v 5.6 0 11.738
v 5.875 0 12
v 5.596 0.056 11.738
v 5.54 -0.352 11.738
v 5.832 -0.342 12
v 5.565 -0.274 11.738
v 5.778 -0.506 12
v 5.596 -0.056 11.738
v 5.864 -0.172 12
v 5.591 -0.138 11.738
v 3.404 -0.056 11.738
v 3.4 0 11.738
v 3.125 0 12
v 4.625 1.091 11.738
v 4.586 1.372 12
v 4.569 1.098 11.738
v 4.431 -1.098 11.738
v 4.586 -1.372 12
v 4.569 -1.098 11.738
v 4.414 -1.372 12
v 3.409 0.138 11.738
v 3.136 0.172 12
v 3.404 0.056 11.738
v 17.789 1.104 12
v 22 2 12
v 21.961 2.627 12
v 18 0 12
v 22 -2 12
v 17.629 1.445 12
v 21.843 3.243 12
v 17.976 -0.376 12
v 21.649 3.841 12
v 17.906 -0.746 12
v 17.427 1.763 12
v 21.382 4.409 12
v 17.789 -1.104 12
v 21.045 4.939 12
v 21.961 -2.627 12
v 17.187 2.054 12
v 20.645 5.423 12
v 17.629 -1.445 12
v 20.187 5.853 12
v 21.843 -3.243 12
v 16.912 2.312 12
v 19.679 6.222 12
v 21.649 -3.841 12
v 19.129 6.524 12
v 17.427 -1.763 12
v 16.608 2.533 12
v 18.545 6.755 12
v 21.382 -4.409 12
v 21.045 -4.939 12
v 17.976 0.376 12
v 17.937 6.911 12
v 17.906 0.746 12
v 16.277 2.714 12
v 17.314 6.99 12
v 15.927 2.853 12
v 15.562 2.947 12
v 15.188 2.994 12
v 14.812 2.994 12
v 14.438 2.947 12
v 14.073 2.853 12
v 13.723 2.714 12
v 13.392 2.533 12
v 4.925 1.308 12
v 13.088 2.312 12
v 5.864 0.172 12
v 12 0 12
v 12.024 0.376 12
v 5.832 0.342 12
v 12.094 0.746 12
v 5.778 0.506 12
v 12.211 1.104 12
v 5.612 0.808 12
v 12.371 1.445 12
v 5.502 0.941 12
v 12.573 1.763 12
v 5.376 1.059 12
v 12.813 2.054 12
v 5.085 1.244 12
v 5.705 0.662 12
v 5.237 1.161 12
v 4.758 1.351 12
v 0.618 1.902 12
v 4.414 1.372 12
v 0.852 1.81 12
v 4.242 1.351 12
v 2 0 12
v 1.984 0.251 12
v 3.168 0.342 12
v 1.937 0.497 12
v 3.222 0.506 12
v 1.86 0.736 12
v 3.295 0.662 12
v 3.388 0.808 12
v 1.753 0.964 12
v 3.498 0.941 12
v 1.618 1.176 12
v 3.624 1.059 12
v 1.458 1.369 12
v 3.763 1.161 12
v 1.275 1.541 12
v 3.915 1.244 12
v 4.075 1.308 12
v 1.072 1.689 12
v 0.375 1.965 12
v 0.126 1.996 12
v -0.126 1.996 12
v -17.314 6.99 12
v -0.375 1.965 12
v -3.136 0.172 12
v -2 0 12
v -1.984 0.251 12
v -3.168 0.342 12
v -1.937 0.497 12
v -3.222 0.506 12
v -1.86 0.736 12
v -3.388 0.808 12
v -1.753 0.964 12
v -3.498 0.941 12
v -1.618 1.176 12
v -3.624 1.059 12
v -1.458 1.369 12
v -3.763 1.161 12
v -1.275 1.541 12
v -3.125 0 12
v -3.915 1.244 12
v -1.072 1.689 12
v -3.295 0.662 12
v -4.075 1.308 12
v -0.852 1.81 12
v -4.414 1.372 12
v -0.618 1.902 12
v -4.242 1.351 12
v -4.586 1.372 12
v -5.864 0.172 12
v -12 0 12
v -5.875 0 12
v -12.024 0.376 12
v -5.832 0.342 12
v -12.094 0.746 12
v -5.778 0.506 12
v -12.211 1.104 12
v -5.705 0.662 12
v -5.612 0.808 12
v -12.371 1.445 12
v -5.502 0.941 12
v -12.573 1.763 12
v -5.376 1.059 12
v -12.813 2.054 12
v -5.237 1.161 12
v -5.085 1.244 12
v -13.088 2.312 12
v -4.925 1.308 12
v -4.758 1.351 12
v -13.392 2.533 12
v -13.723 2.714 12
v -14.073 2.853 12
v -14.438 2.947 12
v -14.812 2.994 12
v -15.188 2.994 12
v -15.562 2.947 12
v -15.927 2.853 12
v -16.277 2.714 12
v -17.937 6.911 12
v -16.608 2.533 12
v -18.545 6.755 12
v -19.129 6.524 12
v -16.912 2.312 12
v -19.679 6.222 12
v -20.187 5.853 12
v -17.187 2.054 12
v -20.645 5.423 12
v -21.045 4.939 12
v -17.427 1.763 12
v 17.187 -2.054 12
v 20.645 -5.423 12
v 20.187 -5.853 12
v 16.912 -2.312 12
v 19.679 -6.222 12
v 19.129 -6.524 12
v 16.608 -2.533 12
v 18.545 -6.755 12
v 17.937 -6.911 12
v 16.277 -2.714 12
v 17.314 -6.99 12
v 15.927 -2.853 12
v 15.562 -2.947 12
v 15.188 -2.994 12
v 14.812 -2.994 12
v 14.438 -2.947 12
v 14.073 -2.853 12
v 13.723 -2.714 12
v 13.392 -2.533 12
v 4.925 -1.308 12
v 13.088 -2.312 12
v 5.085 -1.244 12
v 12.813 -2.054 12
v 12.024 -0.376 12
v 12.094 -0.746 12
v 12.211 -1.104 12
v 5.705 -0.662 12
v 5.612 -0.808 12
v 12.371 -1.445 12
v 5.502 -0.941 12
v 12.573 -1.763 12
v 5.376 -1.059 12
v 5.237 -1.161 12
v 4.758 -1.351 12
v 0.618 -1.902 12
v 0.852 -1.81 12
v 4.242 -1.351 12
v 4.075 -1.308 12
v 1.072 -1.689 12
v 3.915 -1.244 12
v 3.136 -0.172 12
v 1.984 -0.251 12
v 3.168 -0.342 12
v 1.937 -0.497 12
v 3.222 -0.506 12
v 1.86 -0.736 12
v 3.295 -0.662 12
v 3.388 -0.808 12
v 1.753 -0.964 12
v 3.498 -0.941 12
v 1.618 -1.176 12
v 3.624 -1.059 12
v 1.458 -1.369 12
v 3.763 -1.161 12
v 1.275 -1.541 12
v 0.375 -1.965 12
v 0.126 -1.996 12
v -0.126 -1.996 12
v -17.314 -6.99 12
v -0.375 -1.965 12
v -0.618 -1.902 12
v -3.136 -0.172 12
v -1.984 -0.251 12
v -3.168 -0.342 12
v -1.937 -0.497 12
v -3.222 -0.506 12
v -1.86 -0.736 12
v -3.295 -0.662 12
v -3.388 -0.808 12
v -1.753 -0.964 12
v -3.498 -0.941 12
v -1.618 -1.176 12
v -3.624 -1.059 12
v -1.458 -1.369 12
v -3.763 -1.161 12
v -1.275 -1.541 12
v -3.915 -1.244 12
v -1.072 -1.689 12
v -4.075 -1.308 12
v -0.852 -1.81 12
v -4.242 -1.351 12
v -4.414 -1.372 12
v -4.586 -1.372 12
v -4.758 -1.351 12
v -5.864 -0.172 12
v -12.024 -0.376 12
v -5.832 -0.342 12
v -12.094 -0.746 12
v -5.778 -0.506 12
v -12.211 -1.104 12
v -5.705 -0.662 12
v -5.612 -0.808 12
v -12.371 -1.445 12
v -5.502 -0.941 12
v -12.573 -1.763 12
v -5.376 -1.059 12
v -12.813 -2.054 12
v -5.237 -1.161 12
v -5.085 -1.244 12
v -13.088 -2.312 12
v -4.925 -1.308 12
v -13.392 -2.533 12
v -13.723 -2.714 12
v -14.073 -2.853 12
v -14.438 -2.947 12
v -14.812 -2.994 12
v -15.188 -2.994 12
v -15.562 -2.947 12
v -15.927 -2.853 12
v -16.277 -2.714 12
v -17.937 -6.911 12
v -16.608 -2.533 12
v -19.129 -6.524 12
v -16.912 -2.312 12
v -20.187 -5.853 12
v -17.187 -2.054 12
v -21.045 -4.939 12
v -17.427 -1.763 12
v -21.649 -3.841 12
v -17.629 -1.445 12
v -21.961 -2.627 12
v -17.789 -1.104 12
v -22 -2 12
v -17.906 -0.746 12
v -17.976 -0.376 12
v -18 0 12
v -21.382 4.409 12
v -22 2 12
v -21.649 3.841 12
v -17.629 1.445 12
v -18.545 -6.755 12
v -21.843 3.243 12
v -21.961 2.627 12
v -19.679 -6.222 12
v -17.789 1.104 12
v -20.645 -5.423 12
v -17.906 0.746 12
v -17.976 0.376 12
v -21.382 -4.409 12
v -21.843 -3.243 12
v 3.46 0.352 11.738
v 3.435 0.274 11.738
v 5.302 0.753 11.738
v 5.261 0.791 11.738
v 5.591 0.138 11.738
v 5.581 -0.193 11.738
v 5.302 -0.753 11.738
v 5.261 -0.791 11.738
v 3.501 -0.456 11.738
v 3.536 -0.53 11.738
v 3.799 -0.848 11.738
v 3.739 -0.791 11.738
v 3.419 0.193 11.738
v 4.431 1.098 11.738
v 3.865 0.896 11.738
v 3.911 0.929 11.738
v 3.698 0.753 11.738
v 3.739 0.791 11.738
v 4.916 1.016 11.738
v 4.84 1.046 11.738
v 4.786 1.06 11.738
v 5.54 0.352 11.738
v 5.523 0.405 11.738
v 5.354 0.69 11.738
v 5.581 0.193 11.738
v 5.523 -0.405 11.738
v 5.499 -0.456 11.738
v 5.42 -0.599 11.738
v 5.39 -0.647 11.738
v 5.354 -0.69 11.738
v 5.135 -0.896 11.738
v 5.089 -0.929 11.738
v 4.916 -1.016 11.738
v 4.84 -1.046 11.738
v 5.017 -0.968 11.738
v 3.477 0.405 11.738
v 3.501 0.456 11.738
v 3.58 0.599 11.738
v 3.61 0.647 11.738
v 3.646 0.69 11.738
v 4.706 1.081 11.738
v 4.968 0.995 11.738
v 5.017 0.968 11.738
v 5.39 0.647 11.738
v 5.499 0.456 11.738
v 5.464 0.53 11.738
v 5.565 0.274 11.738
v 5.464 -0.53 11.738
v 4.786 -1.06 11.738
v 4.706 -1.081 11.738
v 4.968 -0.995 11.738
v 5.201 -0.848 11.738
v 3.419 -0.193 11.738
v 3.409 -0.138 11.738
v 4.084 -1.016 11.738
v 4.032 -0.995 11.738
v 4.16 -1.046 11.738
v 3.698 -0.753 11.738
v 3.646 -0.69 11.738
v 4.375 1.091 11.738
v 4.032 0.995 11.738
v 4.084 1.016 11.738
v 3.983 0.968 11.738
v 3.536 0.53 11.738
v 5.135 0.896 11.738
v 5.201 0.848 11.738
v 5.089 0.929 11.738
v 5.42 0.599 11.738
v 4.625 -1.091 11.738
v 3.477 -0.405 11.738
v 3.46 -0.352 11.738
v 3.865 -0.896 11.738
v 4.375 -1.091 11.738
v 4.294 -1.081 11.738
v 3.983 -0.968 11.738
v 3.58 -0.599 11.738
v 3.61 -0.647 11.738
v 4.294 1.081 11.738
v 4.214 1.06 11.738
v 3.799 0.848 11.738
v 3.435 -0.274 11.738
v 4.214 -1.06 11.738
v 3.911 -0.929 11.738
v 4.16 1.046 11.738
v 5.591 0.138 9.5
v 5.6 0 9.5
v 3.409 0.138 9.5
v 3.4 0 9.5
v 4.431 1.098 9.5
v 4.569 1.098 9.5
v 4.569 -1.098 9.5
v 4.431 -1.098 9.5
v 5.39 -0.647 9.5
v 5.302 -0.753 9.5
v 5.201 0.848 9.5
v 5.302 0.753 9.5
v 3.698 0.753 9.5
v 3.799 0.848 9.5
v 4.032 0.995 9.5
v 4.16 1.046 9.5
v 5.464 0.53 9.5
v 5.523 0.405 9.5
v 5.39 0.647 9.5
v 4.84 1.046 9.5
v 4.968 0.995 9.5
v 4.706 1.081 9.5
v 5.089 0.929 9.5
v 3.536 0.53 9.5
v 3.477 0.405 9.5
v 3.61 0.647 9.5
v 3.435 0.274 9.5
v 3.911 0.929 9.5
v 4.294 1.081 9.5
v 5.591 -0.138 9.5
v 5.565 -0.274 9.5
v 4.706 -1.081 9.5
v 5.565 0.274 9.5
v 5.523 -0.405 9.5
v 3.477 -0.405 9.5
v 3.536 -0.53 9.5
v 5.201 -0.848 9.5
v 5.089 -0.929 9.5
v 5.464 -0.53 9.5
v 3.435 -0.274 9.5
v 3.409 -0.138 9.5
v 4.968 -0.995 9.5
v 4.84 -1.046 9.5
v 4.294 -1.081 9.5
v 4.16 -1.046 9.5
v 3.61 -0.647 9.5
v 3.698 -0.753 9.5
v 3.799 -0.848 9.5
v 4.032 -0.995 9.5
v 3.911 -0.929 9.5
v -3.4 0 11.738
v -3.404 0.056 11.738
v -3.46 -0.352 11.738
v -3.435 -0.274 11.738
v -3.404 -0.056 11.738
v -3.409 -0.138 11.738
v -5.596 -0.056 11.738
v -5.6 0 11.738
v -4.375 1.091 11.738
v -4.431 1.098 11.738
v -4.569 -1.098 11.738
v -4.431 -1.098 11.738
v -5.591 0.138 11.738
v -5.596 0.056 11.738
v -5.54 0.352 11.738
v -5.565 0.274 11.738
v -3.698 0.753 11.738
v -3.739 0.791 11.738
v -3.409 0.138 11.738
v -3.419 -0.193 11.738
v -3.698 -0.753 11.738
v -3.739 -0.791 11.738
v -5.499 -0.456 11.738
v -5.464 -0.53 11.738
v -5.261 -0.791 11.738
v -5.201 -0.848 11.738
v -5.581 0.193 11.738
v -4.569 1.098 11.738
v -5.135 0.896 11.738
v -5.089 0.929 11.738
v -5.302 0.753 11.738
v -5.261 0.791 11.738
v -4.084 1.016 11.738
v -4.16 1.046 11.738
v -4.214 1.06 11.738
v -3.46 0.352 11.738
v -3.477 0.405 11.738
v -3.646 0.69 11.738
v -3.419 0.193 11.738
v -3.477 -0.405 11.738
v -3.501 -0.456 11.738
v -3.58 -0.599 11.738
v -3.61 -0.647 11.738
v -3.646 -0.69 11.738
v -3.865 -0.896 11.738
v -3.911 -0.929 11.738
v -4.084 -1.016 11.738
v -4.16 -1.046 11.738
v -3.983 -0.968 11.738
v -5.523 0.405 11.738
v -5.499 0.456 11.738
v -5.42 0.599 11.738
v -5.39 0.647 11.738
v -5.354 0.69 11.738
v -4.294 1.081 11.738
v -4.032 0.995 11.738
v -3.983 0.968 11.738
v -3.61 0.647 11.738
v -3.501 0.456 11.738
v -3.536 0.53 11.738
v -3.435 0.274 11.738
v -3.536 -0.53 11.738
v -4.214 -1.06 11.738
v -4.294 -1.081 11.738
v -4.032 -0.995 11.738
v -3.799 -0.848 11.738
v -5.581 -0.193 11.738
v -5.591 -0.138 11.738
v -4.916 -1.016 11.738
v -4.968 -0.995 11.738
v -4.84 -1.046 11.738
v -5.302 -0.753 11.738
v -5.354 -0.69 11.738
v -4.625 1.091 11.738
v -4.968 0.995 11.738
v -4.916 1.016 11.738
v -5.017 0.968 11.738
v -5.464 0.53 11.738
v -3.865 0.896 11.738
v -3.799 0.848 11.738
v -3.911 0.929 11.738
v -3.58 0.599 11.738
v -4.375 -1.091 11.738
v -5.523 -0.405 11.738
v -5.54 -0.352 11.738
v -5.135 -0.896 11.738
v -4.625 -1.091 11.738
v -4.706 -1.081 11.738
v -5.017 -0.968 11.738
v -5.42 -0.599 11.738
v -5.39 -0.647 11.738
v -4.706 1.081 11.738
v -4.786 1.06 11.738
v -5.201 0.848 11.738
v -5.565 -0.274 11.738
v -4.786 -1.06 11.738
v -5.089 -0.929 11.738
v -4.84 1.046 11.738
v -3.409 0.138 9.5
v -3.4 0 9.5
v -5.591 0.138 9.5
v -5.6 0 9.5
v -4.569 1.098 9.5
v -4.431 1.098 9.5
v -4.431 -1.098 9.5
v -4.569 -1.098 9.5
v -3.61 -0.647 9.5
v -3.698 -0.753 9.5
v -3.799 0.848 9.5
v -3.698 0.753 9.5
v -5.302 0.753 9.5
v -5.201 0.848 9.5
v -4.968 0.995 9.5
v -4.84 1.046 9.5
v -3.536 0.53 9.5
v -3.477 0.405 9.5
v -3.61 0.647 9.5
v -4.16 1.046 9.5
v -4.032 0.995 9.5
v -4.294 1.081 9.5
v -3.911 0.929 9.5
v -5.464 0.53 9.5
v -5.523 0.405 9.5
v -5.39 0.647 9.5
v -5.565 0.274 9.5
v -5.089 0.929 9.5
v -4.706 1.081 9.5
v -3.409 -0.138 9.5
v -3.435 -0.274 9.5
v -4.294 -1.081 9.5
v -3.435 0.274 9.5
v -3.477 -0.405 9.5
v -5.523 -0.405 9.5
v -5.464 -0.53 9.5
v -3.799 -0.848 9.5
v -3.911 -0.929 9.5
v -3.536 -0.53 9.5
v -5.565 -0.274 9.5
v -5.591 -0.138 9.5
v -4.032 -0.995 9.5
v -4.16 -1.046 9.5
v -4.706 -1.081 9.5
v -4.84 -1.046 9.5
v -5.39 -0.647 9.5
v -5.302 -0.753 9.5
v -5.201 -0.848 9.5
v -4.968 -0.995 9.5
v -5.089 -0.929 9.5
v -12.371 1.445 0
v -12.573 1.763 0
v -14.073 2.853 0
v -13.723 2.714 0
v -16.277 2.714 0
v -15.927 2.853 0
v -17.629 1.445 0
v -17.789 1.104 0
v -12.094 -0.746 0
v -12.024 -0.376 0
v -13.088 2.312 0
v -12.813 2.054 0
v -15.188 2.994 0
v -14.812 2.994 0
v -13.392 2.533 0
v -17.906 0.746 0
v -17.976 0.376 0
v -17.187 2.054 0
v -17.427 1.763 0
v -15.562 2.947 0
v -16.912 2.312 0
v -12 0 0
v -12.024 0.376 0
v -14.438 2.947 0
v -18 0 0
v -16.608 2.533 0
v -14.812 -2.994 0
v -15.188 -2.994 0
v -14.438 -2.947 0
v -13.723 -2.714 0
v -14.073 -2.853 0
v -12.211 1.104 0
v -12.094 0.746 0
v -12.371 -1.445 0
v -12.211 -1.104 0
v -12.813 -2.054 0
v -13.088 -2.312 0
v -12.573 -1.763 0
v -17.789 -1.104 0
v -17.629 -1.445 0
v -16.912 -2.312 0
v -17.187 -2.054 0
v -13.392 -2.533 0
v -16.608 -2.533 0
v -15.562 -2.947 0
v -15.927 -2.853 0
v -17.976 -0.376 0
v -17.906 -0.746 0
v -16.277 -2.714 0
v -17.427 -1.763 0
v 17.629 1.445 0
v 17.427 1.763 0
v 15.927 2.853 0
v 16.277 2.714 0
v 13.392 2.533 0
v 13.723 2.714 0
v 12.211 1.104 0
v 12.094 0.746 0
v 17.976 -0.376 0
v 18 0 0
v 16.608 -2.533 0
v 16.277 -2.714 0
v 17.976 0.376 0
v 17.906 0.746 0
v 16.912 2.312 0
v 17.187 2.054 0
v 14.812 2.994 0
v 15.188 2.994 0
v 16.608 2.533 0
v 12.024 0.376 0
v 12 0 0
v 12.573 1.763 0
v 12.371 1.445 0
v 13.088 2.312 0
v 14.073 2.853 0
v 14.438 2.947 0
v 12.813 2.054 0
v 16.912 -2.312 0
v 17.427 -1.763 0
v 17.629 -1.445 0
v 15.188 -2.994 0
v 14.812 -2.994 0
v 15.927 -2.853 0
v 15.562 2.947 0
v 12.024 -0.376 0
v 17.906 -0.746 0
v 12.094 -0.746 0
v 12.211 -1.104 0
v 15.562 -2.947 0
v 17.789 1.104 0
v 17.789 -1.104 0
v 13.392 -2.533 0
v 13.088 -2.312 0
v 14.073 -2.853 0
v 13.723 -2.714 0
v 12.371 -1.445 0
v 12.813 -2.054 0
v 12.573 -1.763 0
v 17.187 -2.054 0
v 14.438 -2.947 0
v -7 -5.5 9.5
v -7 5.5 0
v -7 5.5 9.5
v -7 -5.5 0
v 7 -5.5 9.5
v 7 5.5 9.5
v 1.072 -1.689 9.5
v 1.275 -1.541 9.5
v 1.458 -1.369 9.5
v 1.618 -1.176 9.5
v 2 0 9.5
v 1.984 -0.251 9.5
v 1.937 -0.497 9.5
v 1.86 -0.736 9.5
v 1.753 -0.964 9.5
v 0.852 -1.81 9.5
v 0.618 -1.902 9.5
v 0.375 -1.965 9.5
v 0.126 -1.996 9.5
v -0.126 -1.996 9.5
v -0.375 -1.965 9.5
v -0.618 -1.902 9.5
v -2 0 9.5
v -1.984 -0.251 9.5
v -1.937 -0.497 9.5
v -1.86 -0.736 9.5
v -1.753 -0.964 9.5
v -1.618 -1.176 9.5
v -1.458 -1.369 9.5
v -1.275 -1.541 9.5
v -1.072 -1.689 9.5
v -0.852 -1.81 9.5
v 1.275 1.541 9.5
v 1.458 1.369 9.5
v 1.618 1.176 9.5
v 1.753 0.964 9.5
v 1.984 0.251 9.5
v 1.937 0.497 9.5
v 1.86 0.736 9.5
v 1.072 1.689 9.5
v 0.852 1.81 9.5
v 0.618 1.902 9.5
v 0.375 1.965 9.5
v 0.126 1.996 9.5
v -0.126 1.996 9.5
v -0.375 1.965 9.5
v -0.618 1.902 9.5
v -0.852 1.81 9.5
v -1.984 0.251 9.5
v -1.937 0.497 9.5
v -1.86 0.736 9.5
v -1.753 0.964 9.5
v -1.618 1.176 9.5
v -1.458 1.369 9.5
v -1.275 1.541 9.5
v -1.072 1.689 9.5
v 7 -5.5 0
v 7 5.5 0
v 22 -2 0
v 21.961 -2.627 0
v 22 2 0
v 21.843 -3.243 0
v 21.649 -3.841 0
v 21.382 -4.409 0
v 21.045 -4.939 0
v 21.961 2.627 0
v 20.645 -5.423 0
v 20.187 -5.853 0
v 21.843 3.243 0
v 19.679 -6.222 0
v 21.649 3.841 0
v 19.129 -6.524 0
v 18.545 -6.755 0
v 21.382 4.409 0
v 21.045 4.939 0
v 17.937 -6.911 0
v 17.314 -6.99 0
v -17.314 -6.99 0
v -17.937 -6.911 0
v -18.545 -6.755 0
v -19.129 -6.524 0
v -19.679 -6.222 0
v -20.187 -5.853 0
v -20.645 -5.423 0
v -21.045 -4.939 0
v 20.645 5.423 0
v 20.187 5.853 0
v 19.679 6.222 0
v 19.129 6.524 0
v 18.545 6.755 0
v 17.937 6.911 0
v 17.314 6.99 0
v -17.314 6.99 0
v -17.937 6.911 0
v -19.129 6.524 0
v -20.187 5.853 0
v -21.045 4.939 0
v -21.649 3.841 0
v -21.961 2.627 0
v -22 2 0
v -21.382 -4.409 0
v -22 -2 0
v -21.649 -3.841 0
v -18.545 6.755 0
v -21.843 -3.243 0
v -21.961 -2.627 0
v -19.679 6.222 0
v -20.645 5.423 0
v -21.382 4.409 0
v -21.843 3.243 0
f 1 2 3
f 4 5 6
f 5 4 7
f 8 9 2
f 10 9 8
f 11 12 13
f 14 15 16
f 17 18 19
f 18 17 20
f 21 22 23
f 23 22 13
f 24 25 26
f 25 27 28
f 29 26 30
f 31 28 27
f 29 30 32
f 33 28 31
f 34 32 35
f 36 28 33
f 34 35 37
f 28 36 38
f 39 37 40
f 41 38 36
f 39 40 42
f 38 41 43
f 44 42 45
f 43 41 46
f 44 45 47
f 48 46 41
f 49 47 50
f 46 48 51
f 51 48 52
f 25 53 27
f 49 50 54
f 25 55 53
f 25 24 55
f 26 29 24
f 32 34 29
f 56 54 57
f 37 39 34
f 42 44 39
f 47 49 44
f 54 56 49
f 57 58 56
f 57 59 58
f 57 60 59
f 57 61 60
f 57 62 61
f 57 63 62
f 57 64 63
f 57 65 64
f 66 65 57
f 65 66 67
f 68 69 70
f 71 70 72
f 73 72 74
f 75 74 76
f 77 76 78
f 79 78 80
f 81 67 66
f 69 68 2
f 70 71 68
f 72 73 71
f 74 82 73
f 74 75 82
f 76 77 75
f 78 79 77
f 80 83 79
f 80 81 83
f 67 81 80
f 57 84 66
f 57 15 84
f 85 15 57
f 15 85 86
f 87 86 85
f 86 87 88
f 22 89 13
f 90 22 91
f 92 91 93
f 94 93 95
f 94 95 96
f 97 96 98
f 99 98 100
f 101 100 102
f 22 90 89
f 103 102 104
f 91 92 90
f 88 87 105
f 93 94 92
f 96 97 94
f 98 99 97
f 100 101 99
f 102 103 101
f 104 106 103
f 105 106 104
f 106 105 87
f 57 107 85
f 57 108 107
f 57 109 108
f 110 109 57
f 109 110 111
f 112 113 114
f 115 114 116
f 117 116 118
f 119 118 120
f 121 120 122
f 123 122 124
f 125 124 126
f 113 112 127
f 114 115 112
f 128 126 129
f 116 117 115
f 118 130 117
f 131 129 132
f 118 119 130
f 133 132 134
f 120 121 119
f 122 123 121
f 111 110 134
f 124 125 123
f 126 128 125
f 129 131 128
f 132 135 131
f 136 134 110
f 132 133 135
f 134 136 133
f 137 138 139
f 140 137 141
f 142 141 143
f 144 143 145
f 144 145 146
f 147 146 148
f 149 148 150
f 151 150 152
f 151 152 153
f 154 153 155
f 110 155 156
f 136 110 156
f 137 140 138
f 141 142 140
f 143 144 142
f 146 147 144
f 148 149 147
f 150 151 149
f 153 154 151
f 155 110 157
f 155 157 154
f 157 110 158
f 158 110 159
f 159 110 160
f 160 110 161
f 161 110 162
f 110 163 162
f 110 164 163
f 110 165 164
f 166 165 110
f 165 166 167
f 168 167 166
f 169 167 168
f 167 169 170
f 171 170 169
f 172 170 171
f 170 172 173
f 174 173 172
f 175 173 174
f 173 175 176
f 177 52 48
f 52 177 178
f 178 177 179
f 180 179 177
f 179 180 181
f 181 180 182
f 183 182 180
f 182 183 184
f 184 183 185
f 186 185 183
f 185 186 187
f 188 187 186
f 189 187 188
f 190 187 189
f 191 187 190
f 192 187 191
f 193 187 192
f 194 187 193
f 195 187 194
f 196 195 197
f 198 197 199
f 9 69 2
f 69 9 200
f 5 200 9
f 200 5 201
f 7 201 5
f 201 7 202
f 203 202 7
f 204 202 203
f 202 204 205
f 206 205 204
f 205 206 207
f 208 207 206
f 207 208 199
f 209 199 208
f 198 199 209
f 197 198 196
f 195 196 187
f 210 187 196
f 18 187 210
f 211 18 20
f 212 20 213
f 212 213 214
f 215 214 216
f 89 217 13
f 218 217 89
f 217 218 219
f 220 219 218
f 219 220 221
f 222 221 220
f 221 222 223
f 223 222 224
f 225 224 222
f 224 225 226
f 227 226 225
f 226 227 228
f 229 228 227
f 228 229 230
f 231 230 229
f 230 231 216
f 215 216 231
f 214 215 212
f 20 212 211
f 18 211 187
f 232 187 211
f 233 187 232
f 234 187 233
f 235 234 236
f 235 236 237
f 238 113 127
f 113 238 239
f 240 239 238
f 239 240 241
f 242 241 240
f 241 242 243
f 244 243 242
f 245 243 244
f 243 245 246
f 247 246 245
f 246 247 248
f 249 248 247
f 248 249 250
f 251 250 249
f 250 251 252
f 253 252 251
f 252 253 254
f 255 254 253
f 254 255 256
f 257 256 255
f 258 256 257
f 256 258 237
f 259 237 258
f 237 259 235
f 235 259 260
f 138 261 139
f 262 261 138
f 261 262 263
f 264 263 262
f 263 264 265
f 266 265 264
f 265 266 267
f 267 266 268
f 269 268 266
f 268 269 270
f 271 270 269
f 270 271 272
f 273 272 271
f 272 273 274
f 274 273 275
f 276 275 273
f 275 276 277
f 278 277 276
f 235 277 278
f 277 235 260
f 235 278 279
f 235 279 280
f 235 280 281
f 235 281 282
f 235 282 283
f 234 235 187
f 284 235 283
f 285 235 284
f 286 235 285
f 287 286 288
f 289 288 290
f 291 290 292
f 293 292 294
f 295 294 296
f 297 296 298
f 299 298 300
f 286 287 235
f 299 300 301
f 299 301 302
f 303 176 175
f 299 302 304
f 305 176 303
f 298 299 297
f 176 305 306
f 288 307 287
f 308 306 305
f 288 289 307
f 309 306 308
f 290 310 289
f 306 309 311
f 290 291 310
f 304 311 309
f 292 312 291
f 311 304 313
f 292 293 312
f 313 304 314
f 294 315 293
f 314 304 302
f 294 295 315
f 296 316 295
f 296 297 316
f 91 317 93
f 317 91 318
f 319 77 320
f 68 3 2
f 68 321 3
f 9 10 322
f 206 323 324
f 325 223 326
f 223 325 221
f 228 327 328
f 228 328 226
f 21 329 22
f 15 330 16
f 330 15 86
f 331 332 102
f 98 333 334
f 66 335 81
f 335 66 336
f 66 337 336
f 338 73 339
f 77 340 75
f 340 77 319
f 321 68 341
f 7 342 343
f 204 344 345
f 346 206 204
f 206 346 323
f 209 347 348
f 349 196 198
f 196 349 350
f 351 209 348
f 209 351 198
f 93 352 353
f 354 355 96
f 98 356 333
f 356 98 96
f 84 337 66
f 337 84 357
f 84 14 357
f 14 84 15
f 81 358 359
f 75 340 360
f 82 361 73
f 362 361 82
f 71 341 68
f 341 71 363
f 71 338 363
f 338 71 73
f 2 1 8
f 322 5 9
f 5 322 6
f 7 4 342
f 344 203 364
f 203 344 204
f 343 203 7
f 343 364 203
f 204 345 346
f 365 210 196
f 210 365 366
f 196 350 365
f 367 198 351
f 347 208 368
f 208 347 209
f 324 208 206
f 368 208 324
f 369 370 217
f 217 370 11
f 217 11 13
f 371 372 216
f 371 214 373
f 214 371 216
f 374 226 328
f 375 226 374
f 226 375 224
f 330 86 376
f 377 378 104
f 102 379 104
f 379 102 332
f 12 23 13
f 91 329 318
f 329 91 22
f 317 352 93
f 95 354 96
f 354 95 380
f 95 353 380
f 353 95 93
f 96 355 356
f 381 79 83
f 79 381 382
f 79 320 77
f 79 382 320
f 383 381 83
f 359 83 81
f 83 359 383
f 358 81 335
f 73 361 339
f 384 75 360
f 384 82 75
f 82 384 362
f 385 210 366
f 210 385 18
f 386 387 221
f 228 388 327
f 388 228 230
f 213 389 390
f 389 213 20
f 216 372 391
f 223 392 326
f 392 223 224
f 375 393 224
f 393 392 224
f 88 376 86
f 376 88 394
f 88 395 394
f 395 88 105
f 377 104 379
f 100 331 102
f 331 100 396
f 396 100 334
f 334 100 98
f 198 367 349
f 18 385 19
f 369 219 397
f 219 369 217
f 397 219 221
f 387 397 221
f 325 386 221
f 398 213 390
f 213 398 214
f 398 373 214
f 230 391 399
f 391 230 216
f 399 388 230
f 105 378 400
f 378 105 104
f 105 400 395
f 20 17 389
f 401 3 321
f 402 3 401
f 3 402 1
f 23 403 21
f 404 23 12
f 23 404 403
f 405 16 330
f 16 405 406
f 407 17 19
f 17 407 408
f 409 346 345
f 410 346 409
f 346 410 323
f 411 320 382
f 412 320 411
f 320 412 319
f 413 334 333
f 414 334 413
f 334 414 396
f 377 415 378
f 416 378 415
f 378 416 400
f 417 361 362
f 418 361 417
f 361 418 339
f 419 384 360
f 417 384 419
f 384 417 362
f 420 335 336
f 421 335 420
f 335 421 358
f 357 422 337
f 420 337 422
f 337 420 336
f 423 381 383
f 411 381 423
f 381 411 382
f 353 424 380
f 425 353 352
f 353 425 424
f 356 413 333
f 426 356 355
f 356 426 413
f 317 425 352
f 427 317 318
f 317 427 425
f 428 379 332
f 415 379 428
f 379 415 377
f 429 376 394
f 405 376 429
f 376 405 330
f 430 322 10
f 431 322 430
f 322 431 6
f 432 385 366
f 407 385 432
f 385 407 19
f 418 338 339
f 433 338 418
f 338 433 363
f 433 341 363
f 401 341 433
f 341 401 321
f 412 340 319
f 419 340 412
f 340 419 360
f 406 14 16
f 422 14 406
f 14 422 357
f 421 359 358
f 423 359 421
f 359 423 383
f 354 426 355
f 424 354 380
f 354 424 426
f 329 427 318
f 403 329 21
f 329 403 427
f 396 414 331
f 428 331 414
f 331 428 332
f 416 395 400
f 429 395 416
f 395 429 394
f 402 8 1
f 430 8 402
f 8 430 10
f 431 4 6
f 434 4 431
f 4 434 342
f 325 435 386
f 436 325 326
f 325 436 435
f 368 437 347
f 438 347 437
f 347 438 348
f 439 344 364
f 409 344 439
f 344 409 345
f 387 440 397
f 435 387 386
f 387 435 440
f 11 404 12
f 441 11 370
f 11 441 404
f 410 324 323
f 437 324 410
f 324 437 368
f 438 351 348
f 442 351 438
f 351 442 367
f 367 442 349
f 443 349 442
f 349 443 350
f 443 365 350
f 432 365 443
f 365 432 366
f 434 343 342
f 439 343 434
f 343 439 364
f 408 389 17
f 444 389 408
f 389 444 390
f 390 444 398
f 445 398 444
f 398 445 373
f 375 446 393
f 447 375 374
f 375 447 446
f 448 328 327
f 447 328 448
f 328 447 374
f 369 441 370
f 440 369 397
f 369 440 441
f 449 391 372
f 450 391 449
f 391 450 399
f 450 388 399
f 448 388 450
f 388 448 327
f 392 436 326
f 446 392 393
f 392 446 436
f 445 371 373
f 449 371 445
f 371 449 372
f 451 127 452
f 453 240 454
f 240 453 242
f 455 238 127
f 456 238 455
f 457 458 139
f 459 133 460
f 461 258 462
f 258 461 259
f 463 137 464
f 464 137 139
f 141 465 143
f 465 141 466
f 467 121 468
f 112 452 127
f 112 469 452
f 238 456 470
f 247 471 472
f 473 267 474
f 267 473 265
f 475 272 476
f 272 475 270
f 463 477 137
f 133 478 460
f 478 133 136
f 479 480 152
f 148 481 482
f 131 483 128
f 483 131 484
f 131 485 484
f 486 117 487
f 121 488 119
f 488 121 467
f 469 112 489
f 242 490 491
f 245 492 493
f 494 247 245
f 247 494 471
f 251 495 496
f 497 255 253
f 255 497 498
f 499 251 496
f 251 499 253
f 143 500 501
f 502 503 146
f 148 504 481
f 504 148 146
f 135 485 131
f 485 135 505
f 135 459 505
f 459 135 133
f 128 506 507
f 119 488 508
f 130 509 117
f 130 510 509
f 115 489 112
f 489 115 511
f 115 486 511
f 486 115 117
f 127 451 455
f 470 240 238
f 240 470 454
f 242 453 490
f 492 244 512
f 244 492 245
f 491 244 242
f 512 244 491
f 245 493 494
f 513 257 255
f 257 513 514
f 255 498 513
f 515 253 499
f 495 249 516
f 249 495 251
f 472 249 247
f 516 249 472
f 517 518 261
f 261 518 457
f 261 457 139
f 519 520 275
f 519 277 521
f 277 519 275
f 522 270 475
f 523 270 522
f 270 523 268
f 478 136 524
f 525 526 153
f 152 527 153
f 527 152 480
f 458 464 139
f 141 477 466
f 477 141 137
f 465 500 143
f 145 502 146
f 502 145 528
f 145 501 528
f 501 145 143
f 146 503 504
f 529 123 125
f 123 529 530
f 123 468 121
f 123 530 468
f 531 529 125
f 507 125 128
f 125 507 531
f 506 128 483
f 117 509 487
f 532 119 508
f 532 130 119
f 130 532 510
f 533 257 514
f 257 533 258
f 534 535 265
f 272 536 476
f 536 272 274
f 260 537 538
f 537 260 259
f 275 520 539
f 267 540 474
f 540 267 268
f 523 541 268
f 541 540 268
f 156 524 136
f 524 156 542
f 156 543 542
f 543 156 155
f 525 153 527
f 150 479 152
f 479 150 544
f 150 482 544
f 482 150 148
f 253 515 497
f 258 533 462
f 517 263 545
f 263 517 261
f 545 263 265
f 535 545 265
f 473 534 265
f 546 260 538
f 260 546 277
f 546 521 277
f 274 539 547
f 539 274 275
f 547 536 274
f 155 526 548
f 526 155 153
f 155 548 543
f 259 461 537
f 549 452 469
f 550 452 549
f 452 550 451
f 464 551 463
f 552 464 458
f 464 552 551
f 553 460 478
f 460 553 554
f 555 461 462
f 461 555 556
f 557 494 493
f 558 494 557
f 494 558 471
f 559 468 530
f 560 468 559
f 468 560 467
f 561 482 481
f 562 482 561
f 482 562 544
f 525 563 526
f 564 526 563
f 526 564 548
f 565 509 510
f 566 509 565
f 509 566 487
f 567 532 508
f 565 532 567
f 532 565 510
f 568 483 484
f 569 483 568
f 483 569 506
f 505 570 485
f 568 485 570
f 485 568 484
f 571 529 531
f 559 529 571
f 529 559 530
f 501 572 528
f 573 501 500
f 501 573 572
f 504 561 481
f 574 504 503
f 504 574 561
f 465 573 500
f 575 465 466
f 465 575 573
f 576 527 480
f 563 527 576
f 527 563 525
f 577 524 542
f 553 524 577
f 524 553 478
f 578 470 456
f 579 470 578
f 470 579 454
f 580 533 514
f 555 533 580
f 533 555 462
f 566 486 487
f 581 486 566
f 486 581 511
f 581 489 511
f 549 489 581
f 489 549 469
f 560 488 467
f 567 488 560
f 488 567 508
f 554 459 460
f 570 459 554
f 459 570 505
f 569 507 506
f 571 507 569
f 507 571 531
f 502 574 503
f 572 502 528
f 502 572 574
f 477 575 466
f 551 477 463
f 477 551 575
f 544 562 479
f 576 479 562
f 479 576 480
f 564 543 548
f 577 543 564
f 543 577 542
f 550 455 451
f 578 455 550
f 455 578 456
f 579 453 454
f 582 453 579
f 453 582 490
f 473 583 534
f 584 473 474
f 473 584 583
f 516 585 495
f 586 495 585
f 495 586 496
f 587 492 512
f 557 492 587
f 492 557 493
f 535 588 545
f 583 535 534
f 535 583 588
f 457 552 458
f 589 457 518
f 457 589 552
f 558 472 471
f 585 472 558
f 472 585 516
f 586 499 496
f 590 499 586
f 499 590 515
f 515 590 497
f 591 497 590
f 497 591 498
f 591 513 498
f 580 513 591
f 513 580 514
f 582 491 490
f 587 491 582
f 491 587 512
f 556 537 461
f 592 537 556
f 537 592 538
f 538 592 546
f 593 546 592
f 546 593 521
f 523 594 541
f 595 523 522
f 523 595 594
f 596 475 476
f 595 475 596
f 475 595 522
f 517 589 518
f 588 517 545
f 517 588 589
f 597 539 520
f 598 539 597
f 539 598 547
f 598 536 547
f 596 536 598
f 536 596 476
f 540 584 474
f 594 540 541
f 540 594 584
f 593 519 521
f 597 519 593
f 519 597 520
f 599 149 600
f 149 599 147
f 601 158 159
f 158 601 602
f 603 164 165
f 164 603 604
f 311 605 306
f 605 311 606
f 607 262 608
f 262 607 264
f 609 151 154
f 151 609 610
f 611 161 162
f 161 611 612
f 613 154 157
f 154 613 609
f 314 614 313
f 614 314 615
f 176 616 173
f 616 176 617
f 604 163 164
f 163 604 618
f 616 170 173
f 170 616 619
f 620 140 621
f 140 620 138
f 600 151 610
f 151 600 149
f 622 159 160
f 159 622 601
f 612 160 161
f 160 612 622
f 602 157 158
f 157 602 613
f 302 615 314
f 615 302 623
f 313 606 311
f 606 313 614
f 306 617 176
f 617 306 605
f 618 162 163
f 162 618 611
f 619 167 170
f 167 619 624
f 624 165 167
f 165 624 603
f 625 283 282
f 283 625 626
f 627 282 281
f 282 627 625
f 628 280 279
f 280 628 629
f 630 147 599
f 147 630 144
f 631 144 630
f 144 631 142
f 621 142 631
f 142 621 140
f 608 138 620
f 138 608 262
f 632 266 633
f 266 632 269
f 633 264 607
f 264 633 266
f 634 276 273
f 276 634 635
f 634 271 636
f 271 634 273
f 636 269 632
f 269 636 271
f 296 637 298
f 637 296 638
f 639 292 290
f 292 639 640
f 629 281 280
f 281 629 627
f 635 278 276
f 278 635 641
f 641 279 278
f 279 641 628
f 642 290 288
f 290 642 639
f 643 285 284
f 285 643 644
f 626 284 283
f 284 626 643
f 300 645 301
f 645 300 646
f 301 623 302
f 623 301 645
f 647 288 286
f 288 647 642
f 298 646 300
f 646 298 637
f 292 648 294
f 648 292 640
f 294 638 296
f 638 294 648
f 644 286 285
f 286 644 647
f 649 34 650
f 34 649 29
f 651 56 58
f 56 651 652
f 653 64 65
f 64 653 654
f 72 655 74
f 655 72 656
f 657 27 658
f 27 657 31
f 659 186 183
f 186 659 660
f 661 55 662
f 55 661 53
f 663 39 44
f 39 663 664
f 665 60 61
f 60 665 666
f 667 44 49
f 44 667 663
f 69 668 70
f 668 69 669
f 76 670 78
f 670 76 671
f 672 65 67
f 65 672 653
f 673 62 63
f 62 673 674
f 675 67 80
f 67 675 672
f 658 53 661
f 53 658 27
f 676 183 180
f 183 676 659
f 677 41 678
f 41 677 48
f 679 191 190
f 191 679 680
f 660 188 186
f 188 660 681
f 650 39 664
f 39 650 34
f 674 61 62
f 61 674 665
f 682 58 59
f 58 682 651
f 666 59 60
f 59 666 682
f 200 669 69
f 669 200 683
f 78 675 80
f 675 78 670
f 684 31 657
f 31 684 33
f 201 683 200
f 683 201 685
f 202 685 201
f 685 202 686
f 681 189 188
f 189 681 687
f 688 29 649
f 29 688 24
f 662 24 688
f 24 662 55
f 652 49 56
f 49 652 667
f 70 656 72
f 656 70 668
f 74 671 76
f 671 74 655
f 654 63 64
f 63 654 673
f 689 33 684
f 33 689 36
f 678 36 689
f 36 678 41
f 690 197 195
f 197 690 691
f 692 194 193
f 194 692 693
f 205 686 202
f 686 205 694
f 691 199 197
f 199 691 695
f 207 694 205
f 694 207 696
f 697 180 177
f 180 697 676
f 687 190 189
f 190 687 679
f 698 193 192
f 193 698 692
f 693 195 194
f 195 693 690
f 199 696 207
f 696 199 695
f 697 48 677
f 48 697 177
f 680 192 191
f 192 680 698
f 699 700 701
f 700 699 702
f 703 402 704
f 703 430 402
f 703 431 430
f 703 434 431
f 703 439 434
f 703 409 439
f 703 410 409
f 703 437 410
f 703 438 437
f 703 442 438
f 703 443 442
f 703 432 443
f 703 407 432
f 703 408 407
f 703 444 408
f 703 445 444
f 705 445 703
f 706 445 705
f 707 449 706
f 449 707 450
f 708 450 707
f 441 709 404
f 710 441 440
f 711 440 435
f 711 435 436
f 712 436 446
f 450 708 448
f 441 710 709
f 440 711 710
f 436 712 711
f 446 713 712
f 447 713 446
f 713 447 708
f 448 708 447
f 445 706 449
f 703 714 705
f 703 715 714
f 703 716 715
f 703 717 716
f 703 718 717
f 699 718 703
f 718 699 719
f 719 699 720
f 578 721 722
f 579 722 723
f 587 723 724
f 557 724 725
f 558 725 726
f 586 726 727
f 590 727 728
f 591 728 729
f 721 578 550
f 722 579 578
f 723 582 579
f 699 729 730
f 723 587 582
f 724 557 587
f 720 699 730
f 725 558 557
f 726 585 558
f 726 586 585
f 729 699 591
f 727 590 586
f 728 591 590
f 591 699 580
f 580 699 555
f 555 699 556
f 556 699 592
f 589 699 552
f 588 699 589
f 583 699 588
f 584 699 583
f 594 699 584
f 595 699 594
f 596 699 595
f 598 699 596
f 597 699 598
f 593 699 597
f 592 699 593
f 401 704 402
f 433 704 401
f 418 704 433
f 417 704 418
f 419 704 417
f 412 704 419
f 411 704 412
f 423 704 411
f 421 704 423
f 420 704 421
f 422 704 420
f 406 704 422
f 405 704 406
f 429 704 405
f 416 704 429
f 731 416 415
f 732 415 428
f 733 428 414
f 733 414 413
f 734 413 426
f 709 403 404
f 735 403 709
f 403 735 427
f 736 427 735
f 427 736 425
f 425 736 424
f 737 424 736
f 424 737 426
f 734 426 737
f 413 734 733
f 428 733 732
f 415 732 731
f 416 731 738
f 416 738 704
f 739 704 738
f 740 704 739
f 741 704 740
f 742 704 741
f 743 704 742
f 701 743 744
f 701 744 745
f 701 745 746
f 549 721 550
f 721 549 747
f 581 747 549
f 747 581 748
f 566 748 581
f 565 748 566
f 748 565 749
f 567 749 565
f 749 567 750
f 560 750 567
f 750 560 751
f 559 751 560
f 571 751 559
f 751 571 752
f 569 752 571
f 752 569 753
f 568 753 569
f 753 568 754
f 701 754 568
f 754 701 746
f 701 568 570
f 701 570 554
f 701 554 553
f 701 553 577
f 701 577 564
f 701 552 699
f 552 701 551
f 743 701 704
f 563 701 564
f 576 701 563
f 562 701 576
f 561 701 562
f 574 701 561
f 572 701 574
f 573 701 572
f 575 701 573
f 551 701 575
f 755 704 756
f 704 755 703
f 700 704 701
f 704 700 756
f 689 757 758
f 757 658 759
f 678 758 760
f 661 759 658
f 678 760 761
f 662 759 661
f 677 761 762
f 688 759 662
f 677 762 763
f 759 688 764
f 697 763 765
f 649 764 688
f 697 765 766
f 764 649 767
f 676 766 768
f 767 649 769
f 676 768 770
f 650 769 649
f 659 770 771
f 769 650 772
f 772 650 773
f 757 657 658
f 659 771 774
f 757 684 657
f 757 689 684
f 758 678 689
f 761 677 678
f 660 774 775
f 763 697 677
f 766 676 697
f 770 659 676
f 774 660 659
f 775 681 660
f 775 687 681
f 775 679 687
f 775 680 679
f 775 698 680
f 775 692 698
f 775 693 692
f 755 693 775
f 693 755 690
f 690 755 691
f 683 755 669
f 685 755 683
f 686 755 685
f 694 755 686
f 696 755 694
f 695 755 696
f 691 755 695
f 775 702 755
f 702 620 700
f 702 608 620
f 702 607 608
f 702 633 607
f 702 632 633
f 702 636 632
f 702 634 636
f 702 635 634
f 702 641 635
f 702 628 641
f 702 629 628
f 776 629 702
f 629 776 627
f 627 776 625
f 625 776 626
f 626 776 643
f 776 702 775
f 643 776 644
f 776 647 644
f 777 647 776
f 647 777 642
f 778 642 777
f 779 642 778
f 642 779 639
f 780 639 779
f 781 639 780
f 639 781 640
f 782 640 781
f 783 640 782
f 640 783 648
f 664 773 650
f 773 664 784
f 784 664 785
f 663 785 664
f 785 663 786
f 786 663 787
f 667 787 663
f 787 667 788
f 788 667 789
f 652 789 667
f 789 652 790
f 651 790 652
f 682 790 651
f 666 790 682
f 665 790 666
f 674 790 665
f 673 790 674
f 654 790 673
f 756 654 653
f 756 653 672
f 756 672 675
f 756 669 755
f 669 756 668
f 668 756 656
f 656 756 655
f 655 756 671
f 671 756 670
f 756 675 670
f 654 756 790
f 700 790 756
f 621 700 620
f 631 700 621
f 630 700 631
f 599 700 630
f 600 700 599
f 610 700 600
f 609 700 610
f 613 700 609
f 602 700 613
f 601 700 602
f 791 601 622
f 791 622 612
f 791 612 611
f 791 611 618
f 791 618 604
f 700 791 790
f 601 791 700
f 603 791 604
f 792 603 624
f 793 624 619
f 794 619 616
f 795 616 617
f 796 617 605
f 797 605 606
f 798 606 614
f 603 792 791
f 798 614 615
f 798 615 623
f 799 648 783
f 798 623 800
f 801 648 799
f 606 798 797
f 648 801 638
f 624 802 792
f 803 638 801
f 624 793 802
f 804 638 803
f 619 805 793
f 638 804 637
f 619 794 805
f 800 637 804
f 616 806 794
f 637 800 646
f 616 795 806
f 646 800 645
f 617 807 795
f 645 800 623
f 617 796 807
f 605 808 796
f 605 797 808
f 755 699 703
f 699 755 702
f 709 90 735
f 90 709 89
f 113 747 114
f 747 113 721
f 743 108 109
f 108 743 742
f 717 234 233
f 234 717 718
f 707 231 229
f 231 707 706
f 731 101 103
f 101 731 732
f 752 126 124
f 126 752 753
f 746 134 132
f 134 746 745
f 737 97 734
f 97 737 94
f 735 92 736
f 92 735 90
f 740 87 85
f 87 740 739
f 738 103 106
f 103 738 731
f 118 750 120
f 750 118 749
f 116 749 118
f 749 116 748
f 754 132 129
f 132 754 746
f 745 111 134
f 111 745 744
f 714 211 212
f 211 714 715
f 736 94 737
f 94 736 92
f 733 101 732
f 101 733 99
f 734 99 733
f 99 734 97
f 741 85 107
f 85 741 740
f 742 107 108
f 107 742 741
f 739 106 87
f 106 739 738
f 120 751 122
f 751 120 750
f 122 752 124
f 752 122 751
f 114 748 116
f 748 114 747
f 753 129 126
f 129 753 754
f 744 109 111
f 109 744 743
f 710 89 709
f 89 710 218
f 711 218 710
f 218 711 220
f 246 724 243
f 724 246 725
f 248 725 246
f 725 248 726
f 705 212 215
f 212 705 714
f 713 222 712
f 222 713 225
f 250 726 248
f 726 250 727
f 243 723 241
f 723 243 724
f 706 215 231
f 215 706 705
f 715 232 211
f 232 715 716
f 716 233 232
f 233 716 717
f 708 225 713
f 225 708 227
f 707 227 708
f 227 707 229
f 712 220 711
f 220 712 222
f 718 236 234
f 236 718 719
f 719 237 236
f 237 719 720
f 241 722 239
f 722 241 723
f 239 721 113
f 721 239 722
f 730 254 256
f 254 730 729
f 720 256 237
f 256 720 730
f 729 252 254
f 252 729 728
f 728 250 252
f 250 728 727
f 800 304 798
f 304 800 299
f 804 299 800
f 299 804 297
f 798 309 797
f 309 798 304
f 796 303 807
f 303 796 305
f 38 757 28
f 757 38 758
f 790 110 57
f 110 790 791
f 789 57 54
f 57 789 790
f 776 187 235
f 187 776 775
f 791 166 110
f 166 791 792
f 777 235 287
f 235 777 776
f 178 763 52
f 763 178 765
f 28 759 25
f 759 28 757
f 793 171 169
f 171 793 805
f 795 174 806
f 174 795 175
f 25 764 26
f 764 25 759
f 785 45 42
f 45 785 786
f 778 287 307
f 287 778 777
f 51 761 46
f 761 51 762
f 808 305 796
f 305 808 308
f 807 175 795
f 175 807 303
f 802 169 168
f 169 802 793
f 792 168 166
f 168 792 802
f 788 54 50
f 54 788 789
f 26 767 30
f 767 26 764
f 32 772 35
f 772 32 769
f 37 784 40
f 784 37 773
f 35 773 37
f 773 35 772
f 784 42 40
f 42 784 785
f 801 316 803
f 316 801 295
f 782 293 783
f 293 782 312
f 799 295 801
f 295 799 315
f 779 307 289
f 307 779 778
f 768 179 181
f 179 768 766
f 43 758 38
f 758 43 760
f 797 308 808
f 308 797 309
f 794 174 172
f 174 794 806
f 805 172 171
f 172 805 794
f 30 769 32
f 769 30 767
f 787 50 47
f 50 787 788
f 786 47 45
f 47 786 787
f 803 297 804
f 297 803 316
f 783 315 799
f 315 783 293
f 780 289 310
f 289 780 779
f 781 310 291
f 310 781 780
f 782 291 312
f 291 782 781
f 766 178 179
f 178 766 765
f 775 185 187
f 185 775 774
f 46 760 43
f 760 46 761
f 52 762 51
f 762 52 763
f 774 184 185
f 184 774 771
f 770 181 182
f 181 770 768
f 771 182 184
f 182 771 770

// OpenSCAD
$fn = 50;


difference() {
	union() {
		hull() {
			translate(v = [-17.0000000000, 2.0000000000, 0]) {
				cylinder(h = 12, r = 5);
			}
			translate(v = [17.0000000000, 2.0000000000, 0]) {
				cylinder(h = 12, r = 5);
			}
			translate(v = [-17.0000000000, -2.0000000000, 0]) {
				cylinder(h = 12, r = 5);
			}
			translate(v = [17.0000000000, -2.0000000000, 0]) {
				cylinder(h = 12, r = 5);
			}
		}
	}
	union() {
		translate(v = [4.5000000000, 0, 12]) {
			rotate(a = [0, 0, 0]) {
				difference() {
					union() {
						translate(v = [0, 0, -0.5000000000]) {
							cylinder(h = 0.5000000000, r1 = 0.8500000000, r2 = 1.3750000000);
						}
						translate(v = [0, 0, -4.0000000000]) {
							cylinder(h = 4, r = 0.8500000000);
						}
						translate(v = [0, 0, -4.0000000000]) {
							cylinder(h = 4, r = 1.1000000000);
						}
						translate(v = [0, 0, -4.0000000000]) {
							cylinder(h = 4, r = 0.8500000000);
						}
					}
					union();
				}
			}
		}
		translate(v = [-4.5000000000, 0, 12]) {
			rotate(a = [0, 0, 0]) {
				difference() {
					union() {
						translate(v = [0, 0, -0.5000000000]) {
							cylinder(h = 0.5000000000, r1 = 0.8500000000, r2 = 1.3750000000);
						}
						translate(v = [0, 0, -4.0000000000]) {
							cylinder(h = 4, r = 0.8500000000);
						}
						translate(v = [0, 0, -4.0000000000]) {
							cylinder(h = 4, r = 1.1000000000);
						}
						translate(v = [0, 0, -4.0000000000]) {
							cylinder(h = 4, r = 0.8500000000);
						}
					}
					union();
				}
			}
		}
		translate(v = [-15.0000000000, 0.0000000000, -100.0000000000]) {
			cylinder(h = 200, r = 3.0000000000);
		}
		translate(v = [15.0000000000, 0.0000000000, -100.0000000000]) {
			cylinder(h = 200, r = 3.0000000000);
		}
		translate(v = [15.0000000000, 0.0000000000, -100.0000000000]) {
			cylinder(h = 200, r = 3.0000000000);
		}
		translate(v = [-15.0000000000, 0.0000000000, -100.0000000000]) {
			cylinder(h = 200, r = 1.5000000000);
		}
		translate(v = [15.0000000000, 0.0000000000, -100.0000000000]) {
			cylinder(h = 200, r = 1.5000000000);
		}
		translate(v = [-15.0000000000, 0.0000000000, -100.0000000000]) {
			cylinder(h = 200, r = 1.5000000000);
		}
		translate(v = [15.0000000000, 0.0000000000, -100.0000000000]) {
			cylinder(h = 200, r = 1.5000000000);
		}
		translate(v = [-15.0000000000, 0.0000000000, -100.0000000000]) {
			cylinder(h = 200, r = 1.5000000000);
		}
		translate(v = [15.0000000000, 0.0000000000, -100.0000000000]) {
			cylinder(h = 200, r = 1.5000000000);
		}
		translate(v = [-7.0000000000, -5.5000000000, 0]) {
			cube(size = [14, 11, 9.5000000000]);
		}
		cylinder(h = 12, r = 2.0000000000);
	}
}
